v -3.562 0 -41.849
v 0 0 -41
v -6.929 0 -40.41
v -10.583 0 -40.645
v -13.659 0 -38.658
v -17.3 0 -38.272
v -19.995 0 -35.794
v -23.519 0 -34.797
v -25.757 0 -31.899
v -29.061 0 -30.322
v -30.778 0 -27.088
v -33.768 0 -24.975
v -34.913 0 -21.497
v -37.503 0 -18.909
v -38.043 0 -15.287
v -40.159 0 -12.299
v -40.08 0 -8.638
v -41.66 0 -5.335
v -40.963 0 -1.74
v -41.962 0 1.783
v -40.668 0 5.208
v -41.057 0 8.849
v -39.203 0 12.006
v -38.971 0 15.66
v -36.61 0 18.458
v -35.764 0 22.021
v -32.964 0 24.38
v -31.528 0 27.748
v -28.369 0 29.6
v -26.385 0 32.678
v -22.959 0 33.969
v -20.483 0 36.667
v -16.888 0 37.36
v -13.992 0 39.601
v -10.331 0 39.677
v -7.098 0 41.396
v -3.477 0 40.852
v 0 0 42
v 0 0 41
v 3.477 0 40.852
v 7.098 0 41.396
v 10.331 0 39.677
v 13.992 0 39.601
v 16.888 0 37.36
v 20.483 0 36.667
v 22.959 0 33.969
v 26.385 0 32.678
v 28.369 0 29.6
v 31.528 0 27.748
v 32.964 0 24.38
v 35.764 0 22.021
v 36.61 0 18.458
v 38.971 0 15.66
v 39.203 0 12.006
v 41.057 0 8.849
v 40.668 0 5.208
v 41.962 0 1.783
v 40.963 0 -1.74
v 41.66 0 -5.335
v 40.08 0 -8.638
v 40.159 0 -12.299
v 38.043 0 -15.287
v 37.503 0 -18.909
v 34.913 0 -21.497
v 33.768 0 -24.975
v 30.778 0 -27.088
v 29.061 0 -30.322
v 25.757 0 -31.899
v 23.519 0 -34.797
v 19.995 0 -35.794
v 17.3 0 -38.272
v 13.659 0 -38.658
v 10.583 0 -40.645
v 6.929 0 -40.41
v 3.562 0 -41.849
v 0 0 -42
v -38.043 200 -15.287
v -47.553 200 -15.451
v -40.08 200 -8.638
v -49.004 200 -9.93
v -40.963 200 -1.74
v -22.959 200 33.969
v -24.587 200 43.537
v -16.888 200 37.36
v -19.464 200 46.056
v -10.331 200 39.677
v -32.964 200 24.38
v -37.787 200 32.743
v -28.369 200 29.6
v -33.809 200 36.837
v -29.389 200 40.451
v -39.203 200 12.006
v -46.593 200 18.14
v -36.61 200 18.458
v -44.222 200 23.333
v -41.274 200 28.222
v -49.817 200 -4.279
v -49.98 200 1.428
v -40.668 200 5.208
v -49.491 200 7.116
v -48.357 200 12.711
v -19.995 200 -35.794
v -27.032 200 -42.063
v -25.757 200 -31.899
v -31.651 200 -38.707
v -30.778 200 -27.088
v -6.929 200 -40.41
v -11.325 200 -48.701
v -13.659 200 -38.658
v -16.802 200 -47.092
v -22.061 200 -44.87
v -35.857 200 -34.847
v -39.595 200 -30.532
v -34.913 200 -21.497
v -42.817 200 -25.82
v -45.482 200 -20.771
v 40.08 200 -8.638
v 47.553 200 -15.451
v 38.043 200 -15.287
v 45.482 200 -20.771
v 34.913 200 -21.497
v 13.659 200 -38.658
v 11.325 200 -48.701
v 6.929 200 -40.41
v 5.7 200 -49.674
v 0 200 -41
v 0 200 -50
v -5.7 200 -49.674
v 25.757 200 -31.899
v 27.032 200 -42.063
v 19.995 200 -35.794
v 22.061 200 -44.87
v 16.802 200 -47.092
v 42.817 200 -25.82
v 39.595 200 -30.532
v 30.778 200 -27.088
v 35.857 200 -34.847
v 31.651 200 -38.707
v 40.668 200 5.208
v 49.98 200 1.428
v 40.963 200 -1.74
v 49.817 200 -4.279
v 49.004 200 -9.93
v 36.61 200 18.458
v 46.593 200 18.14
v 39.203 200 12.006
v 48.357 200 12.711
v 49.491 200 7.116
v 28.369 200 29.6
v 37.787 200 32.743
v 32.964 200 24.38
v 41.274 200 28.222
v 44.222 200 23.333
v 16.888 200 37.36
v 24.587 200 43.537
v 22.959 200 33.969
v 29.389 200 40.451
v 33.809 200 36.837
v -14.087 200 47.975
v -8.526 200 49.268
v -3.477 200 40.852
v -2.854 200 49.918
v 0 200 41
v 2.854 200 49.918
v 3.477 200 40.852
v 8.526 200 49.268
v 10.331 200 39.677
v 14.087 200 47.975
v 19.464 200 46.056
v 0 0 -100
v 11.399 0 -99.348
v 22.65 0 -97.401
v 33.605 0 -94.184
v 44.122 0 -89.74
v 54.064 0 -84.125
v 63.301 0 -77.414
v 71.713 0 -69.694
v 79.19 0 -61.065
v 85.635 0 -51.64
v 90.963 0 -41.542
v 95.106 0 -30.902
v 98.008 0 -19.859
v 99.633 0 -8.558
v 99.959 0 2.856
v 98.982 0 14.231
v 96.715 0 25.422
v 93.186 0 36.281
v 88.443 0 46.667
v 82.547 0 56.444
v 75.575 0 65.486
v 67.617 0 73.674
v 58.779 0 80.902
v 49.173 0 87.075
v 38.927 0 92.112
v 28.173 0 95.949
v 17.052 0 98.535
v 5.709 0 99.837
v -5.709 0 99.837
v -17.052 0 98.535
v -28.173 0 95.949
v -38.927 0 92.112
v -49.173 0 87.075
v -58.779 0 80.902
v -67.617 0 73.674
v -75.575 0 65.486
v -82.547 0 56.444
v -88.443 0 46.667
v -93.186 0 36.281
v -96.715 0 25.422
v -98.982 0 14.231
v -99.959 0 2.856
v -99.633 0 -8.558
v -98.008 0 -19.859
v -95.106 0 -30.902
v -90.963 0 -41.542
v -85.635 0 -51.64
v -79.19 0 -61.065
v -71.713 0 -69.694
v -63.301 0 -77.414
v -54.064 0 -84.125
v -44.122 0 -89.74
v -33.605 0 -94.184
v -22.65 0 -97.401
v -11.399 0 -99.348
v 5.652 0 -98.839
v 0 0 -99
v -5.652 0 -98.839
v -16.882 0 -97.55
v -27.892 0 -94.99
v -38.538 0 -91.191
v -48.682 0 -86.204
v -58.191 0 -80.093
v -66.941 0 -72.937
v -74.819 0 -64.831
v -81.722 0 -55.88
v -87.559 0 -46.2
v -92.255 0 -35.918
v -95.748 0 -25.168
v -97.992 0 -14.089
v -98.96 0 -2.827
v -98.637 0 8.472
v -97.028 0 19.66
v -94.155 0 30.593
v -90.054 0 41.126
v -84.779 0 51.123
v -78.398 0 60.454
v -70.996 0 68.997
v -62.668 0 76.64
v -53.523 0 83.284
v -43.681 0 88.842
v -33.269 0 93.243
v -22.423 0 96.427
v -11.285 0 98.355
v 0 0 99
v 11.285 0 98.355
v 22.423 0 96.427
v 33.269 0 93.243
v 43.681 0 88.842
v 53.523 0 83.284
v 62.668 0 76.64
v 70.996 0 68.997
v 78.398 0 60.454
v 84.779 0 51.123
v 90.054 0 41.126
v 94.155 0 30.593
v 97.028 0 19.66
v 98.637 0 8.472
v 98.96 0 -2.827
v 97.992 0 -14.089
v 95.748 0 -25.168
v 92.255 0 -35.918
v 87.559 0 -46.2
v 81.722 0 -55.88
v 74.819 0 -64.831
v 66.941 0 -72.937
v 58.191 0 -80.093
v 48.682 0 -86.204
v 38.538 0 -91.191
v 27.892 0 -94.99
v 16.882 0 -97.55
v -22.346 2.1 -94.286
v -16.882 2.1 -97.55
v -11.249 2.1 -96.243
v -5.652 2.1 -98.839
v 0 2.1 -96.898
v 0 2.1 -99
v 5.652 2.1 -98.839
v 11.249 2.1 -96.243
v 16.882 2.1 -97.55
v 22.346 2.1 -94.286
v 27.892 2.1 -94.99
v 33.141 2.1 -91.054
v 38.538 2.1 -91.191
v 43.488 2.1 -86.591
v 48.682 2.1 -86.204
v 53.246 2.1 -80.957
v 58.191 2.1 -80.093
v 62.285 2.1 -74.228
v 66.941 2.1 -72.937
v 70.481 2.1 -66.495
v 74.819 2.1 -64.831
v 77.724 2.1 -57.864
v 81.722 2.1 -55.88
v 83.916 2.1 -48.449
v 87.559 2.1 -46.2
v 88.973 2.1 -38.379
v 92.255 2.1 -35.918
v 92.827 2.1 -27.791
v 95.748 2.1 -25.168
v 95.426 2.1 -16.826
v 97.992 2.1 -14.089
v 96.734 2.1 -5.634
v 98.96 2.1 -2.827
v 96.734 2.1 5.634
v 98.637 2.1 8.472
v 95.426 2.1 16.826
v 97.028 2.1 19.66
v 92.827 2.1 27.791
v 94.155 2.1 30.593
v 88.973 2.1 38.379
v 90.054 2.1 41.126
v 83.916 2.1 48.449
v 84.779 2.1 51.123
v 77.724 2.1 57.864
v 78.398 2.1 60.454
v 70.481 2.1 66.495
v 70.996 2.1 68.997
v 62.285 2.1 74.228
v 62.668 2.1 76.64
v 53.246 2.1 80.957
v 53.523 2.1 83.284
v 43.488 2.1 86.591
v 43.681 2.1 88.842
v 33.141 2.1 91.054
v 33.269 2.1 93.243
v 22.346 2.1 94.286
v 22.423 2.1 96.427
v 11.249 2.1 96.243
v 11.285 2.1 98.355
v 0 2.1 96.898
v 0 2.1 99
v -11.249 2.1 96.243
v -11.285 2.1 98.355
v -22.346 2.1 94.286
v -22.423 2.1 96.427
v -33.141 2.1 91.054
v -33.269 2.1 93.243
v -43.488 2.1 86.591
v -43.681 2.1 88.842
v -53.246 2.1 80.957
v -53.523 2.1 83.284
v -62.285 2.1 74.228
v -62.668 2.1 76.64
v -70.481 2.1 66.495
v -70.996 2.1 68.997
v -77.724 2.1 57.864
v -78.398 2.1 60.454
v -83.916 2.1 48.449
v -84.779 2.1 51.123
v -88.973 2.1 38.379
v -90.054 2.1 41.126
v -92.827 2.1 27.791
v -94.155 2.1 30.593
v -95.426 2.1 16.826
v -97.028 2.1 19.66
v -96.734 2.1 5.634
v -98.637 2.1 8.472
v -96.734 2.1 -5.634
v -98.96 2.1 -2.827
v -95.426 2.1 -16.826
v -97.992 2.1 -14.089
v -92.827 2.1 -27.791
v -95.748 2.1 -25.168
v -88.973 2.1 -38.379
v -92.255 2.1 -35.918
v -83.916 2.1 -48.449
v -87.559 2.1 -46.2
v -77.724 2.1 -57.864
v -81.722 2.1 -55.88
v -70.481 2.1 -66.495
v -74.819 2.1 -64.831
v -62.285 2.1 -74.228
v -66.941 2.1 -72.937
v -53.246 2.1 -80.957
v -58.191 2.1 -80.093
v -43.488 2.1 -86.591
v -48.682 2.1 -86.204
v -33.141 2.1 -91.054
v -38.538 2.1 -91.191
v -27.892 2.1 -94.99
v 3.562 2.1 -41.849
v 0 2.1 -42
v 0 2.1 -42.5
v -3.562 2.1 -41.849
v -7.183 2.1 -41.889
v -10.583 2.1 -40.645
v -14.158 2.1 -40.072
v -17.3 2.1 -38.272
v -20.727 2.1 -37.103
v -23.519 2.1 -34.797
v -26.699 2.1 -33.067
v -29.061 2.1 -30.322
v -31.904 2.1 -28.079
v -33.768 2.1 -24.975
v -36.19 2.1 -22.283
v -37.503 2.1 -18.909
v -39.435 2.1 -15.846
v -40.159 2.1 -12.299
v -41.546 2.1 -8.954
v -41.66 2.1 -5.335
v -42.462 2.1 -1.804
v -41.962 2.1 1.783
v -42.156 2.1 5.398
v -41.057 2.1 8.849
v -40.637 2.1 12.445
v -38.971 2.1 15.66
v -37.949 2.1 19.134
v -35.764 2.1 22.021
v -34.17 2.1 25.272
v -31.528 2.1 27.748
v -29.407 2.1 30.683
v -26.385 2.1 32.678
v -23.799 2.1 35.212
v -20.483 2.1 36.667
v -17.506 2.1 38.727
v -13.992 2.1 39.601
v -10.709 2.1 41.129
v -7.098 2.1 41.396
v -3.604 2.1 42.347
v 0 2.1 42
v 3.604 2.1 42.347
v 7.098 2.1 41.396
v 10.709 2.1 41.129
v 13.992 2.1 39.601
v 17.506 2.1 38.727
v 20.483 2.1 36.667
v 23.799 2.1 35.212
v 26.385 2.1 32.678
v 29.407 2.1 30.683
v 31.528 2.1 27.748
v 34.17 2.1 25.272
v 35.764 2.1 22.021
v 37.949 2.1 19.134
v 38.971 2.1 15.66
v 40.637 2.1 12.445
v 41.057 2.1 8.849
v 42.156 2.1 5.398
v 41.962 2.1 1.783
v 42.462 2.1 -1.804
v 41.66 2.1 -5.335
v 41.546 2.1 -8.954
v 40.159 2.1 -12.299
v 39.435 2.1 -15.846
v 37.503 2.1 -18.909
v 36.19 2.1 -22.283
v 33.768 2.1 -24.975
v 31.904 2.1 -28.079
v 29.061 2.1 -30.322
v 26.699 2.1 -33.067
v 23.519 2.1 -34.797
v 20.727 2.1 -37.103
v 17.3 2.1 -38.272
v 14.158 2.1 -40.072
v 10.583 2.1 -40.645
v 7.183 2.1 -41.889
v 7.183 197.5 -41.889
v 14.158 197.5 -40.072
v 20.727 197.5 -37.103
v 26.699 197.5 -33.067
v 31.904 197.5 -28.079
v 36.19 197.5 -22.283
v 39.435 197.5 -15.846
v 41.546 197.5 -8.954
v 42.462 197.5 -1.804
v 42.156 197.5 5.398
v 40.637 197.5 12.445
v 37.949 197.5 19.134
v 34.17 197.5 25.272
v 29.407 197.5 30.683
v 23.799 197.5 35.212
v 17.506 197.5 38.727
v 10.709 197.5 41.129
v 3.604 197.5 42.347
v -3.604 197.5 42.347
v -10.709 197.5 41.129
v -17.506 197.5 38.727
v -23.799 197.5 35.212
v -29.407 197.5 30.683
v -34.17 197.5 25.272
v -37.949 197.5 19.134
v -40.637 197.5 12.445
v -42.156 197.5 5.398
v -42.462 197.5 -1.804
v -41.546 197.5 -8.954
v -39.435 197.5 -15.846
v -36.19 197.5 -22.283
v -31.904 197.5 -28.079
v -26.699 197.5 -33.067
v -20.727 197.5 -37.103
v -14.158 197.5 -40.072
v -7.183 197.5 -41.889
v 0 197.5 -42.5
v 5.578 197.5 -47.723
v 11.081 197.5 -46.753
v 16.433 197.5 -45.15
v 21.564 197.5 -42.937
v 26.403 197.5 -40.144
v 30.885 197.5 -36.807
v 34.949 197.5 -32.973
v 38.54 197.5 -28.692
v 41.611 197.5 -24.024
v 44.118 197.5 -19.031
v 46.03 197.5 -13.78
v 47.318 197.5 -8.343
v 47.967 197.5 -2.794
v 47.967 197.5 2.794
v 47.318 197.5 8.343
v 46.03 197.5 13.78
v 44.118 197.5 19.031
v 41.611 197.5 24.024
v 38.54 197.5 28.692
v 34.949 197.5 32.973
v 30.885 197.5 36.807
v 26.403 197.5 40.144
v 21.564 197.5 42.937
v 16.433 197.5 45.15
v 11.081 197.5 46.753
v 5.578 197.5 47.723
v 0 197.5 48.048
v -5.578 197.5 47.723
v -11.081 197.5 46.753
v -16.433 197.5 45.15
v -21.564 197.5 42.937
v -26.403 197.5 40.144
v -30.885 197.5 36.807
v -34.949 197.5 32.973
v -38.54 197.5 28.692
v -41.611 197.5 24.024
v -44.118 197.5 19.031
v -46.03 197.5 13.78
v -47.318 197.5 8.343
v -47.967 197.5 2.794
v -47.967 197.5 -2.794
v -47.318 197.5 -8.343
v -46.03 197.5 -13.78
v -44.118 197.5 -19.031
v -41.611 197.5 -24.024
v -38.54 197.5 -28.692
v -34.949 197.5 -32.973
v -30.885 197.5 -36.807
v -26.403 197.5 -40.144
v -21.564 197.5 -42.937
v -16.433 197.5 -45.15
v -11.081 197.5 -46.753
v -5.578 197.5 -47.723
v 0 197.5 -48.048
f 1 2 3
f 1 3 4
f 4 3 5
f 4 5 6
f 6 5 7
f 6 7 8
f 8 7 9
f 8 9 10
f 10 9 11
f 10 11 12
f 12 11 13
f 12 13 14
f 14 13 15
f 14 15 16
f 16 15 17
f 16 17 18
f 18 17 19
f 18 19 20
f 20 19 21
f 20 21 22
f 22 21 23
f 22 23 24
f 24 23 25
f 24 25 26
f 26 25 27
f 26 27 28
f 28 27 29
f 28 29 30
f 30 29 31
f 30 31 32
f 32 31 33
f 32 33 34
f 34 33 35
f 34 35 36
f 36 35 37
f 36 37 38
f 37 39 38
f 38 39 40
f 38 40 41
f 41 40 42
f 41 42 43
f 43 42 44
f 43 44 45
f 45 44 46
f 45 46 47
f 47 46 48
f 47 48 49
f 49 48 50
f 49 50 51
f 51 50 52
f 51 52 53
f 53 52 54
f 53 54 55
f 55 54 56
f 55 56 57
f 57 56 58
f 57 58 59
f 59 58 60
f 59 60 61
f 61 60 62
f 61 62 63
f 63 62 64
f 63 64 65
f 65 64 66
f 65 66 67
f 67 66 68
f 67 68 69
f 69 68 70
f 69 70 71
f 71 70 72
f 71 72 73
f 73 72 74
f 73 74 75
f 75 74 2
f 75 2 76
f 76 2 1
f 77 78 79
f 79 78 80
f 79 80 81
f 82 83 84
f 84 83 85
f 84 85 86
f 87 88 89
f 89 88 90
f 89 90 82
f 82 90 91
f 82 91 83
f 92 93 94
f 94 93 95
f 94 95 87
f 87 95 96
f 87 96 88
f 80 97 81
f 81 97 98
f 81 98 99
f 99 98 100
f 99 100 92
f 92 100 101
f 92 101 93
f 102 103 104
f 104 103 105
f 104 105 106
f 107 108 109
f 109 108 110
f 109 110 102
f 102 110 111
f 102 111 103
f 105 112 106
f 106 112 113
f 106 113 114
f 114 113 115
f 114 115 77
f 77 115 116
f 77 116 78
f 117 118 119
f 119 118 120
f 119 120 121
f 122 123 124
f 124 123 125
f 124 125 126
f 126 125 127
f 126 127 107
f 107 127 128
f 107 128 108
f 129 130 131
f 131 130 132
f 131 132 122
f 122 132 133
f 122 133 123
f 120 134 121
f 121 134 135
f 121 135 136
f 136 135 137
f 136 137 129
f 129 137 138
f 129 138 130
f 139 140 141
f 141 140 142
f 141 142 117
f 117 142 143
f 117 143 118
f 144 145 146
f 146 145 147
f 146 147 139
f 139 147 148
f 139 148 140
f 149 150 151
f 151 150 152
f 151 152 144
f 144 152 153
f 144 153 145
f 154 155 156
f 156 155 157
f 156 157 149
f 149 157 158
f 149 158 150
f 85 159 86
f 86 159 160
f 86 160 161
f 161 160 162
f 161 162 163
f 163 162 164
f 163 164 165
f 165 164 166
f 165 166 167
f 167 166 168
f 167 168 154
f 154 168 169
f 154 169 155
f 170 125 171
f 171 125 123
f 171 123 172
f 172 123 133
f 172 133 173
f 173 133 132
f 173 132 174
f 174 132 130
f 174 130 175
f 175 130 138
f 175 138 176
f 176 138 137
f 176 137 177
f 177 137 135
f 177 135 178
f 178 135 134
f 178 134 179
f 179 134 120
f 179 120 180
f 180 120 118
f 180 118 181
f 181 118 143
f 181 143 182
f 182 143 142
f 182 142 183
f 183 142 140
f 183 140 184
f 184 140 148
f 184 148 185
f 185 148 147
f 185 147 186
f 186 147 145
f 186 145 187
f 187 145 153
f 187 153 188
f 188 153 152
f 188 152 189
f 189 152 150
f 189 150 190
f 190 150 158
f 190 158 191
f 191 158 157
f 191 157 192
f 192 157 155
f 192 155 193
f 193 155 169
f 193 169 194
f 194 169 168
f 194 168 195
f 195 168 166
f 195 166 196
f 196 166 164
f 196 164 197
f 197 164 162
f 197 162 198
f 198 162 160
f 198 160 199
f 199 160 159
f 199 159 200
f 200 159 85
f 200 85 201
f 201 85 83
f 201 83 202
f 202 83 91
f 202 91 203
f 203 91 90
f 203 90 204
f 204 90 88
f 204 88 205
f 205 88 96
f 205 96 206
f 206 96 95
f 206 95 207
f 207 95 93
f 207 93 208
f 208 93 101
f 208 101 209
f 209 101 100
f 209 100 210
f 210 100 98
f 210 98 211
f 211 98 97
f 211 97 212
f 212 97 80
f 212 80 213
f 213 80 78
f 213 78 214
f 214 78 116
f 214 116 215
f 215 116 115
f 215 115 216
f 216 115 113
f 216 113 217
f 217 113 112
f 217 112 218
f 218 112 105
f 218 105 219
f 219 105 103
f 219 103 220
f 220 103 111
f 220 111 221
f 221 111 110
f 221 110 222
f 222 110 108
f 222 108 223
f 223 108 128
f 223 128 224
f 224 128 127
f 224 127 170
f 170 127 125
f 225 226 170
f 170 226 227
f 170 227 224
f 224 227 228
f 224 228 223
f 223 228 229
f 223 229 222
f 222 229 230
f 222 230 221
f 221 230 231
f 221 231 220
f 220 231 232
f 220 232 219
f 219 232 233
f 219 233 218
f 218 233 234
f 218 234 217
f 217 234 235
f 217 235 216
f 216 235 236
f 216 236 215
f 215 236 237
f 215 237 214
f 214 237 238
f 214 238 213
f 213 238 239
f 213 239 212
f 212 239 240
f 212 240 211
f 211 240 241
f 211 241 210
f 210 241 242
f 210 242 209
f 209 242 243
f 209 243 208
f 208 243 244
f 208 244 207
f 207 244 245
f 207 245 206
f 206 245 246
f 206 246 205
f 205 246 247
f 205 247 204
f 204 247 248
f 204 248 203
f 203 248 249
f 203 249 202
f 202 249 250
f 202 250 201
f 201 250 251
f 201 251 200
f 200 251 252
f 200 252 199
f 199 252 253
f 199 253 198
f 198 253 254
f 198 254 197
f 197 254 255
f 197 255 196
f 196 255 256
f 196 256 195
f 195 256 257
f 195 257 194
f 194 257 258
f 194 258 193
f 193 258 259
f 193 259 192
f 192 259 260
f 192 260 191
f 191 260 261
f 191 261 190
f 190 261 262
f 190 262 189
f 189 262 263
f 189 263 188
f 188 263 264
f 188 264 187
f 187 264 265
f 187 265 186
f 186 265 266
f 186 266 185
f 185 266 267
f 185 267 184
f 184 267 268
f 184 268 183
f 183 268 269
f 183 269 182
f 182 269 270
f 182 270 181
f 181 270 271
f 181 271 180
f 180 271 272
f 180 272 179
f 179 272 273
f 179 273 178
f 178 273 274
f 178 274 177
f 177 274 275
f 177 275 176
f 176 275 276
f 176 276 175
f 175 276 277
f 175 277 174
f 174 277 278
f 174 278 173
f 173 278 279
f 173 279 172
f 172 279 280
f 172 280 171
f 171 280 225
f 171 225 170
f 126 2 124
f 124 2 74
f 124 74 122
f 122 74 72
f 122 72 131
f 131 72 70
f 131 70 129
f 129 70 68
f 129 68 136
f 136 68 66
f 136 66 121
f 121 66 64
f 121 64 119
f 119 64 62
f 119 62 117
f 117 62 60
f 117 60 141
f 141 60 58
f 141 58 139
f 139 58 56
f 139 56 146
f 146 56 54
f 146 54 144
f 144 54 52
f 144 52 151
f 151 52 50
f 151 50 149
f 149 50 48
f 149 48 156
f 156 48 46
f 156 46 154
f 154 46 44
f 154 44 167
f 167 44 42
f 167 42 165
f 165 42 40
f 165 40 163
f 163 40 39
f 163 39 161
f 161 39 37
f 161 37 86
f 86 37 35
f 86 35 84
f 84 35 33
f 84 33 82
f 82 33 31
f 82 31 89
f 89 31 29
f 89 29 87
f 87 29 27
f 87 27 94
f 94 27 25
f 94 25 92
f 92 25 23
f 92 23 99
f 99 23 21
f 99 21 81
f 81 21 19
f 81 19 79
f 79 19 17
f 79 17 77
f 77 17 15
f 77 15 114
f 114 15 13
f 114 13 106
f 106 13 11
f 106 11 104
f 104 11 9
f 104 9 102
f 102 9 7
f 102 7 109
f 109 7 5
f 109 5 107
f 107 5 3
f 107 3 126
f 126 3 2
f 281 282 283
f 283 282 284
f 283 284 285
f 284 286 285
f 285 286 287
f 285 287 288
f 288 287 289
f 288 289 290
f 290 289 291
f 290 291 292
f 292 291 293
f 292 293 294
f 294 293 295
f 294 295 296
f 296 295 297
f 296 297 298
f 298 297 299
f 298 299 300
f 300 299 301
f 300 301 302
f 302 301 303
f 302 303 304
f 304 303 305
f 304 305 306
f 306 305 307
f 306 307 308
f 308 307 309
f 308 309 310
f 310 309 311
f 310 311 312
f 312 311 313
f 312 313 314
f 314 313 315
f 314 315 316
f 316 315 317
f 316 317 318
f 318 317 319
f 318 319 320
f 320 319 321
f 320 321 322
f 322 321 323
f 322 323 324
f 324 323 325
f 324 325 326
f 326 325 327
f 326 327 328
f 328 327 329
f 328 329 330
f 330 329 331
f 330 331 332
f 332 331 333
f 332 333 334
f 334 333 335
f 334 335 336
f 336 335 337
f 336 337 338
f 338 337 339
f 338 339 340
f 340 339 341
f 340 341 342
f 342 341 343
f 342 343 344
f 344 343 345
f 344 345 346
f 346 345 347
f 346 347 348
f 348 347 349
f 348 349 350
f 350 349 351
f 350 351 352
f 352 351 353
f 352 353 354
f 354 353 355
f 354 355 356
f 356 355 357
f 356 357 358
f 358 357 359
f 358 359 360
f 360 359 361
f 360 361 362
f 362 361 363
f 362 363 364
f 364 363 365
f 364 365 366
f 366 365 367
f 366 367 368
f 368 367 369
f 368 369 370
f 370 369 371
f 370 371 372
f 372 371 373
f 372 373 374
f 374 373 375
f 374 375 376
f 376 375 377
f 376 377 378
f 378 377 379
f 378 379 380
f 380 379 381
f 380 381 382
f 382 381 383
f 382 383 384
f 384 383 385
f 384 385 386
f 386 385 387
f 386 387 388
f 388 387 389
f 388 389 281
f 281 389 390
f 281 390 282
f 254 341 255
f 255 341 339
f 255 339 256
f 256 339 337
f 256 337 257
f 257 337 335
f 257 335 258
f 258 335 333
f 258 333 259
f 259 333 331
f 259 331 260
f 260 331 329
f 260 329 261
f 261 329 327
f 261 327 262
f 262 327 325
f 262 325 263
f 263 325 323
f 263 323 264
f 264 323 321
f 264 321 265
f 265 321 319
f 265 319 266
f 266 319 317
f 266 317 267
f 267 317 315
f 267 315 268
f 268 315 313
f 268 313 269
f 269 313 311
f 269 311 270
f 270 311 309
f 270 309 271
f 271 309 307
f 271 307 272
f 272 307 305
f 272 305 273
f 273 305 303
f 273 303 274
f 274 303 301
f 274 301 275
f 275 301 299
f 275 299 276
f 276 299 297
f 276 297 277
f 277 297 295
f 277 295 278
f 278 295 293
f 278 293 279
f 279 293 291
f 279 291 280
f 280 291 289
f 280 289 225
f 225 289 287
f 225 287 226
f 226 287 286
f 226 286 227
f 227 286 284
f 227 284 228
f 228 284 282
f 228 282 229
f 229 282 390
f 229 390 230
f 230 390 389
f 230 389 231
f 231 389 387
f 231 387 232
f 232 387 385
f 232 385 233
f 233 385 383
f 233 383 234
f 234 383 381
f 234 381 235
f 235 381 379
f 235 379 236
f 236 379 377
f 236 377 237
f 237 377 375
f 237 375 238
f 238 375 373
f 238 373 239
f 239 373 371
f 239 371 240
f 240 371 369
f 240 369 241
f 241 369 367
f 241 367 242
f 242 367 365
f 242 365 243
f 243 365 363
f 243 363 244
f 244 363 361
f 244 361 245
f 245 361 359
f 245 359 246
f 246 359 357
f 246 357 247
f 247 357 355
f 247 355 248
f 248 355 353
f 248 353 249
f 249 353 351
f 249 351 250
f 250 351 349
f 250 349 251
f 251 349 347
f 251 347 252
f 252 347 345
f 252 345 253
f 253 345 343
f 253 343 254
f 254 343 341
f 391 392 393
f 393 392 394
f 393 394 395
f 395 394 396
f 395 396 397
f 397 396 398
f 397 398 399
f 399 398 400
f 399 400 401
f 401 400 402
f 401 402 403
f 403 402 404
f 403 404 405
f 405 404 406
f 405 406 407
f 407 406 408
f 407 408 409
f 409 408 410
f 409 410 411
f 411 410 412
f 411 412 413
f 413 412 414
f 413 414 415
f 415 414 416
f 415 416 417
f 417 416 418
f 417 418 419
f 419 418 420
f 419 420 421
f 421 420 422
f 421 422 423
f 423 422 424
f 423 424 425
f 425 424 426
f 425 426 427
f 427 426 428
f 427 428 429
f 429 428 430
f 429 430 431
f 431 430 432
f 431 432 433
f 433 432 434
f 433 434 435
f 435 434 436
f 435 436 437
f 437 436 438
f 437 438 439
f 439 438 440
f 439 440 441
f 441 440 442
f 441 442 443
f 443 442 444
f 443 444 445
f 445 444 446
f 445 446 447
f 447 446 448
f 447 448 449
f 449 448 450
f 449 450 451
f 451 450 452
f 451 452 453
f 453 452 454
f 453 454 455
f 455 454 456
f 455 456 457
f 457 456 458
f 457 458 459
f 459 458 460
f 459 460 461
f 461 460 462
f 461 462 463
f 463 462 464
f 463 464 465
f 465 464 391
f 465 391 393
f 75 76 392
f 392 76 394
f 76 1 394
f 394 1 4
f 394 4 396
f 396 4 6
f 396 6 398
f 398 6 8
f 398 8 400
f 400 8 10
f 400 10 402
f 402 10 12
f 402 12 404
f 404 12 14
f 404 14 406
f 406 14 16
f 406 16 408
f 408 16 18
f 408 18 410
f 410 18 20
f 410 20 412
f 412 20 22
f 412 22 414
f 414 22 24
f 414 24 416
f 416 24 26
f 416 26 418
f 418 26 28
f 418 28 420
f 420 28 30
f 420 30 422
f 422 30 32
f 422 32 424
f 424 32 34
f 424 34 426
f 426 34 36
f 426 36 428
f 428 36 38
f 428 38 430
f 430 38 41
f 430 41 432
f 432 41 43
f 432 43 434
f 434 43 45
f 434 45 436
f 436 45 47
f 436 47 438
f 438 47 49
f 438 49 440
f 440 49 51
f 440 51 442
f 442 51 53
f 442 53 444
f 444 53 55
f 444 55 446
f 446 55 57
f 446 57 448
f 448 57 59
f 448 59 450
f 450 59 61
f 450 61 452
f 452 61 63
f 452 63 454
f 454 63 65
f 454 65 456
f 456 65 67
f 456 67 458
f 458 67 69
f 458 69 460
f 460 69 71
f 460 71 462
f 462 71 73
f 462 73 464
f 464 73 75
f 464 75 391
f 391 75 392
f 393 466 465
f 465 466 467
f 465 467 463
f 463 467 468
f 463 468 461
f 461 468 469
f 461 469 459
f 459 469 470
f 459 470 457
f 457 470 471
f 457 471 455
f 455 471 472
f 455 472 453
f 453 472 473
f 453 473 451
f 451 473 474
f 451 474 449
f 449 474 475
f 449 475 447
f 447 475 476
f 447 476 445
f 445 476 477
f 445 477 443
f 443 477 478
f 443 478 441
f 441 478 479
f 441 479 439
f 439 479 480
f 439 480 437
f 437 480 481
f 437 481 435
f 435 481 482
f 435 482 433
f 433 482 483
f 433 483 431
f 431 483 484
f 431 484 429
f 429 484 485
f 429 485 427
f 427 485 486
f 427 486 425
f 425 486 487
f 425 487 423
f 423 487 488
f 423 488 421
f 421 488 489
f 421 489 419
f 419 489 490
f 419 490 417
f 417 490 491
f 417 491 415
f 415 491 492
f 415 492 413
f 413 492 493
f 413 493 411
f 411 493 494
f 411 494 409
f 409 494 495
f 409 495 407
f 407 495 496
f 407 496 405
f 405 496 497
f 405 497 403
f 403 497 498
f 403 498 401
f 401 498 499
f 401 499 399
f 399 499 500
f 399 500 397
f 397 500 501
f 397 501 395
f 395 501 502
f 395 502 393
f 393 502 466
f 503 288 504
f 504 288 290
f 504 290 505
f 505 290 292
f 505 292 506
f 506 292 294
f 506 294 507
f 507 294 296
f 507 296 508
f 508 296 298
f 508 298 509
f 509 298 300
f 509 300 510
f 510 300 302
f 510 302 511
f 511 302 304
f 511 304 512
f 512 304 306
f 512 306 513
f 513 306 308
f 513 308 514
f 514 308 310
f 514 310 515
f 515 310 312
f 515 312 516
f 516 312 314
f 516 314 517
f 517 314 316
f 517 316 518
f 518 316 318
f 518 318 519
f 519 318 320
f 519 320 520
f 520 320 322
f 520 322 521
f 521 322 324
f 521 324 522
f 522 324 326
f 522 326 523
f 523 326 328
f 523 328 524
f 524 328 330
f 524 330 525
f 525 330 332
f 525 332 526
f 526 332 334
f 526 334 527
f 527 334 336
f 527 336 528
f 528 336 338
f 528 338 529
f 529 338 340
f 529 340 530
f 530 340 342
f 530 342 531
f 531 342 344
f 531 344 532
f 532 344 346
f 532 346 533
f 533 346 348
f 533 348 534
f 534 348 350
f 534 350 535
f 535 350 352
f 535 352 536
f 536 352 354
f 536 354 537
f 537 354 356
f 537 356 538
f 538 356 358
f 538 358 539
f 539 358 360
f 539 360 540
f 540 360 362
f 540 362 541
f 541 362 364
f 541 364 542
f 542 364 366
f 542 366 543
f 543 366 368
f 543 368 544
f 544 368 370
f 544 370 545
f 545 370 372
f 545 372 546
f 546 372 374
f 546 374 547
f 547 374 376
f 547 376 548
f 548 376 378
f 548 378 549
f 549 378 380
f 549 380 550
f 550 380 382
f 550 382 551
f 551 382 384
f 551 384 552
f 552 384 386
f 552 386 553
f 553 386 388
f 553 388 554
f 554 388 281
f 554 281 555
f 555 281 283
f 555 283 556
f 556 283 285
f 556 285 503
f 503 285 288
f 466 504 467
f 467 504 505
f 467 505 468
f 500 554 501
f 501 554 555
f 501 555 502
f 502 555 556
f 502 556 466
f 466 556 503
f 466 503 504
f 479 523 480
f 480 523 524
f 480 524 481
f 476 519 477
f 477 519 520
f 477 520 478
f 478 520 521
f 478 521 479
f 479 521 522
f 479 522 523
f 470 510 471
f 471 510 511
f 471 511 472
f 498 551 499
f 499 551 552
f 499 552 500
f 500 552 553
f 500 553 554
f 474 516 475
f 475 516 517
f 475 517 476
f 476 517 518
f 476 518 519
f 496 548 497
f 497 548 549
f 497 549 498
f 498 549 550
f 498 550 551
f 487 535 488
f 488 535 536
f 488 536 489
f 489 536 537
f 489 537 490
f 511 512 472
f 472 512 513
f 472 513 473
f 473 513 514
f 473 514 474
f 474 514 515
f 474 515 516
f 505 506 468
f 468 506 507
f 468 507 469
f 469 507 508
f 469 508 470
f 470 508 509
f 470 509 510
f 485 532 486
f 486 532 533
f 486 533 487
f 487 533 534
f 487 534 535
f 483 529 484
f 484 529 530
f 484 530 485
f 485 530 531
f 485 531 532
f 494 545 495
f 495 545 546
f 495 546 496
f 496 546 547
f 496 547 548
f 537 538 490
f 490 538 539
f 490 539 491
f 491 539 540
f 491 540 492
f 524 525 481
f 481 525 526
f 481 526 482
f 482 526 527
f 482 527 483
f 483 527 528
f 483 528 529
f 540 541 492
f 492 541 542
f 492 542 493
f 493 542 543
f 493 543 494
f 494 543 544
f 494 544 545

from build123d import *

# Parameters (mm, degrees)
SKETCH5_R               = 41
CUT_EXTRUDE2_DEPTH      = 200
SKETCH10_R              = 99
SKETCH10_R_2            = 42
CUT_EXTRUDE3_DEPTH      = 1
CUT_EXTRUDE3_DEPTH_BACK = 2.1


with BuildPart() as part:
    # Sketch3 → Revolve1 (revolve)
    with BuildSketch(Plane(origin=(0, 0, 0), x_dir=(0, 0, -1), z_dir=(1, 0, 0))):
        Polygon((0, 0), (100, 0), (50, 200), (0, 200), align=None)
    revolve(axis=Axis((0, 0, 0), (0, 1, 0)))

    # Sketch5 → Cut-Extrude2 (cut)
    with BuildSketch(Plane(origin=(0, 0, 0), x_dir=(1, 0, 0), z_dir=(0, 1, 0))):
        Circle(SKETCH5_R)
    extrude(amount=CUT_EXTRUDE2_DEPTH, mode=Mode.SUBTRACT)

    # Sketch7 → Cut-Revolve1 (revolve, cut)
    with BuildSketch(Plane(origin=(0, 0, 0), x_dir=(0, 0, -1), z_dir=(1, 0, 0))):
        Polygon((96.923058984, 2), (48.048058984, 197.5), (42.5, 197.5), (42.5, 2), align=None)
    revolve(axis=Axis((0, 0, 0), (0, -1, 0)), mode=Mode.SUBTRACT)

    # Sketch10 → Cut-Extrude3 (cut, two sides)
    with BuildSketch(Plane.XZ) as cut_extrude3_sk:
        Circle(SKETCH10_R)
        Circle(SKETCH10_R_2, mode=Mode.SUBTRACT)
    extrude(amount=CUT_EXTRUDE3_DEPTH, mode=Mode.SUBTRACT)
    extrude(cut_extrude3_sk.sketch, amount=-CUT_EXTRUDE3_DEPTH_BACK, mode=Mode.SUBTRACT)


solid = part.part
